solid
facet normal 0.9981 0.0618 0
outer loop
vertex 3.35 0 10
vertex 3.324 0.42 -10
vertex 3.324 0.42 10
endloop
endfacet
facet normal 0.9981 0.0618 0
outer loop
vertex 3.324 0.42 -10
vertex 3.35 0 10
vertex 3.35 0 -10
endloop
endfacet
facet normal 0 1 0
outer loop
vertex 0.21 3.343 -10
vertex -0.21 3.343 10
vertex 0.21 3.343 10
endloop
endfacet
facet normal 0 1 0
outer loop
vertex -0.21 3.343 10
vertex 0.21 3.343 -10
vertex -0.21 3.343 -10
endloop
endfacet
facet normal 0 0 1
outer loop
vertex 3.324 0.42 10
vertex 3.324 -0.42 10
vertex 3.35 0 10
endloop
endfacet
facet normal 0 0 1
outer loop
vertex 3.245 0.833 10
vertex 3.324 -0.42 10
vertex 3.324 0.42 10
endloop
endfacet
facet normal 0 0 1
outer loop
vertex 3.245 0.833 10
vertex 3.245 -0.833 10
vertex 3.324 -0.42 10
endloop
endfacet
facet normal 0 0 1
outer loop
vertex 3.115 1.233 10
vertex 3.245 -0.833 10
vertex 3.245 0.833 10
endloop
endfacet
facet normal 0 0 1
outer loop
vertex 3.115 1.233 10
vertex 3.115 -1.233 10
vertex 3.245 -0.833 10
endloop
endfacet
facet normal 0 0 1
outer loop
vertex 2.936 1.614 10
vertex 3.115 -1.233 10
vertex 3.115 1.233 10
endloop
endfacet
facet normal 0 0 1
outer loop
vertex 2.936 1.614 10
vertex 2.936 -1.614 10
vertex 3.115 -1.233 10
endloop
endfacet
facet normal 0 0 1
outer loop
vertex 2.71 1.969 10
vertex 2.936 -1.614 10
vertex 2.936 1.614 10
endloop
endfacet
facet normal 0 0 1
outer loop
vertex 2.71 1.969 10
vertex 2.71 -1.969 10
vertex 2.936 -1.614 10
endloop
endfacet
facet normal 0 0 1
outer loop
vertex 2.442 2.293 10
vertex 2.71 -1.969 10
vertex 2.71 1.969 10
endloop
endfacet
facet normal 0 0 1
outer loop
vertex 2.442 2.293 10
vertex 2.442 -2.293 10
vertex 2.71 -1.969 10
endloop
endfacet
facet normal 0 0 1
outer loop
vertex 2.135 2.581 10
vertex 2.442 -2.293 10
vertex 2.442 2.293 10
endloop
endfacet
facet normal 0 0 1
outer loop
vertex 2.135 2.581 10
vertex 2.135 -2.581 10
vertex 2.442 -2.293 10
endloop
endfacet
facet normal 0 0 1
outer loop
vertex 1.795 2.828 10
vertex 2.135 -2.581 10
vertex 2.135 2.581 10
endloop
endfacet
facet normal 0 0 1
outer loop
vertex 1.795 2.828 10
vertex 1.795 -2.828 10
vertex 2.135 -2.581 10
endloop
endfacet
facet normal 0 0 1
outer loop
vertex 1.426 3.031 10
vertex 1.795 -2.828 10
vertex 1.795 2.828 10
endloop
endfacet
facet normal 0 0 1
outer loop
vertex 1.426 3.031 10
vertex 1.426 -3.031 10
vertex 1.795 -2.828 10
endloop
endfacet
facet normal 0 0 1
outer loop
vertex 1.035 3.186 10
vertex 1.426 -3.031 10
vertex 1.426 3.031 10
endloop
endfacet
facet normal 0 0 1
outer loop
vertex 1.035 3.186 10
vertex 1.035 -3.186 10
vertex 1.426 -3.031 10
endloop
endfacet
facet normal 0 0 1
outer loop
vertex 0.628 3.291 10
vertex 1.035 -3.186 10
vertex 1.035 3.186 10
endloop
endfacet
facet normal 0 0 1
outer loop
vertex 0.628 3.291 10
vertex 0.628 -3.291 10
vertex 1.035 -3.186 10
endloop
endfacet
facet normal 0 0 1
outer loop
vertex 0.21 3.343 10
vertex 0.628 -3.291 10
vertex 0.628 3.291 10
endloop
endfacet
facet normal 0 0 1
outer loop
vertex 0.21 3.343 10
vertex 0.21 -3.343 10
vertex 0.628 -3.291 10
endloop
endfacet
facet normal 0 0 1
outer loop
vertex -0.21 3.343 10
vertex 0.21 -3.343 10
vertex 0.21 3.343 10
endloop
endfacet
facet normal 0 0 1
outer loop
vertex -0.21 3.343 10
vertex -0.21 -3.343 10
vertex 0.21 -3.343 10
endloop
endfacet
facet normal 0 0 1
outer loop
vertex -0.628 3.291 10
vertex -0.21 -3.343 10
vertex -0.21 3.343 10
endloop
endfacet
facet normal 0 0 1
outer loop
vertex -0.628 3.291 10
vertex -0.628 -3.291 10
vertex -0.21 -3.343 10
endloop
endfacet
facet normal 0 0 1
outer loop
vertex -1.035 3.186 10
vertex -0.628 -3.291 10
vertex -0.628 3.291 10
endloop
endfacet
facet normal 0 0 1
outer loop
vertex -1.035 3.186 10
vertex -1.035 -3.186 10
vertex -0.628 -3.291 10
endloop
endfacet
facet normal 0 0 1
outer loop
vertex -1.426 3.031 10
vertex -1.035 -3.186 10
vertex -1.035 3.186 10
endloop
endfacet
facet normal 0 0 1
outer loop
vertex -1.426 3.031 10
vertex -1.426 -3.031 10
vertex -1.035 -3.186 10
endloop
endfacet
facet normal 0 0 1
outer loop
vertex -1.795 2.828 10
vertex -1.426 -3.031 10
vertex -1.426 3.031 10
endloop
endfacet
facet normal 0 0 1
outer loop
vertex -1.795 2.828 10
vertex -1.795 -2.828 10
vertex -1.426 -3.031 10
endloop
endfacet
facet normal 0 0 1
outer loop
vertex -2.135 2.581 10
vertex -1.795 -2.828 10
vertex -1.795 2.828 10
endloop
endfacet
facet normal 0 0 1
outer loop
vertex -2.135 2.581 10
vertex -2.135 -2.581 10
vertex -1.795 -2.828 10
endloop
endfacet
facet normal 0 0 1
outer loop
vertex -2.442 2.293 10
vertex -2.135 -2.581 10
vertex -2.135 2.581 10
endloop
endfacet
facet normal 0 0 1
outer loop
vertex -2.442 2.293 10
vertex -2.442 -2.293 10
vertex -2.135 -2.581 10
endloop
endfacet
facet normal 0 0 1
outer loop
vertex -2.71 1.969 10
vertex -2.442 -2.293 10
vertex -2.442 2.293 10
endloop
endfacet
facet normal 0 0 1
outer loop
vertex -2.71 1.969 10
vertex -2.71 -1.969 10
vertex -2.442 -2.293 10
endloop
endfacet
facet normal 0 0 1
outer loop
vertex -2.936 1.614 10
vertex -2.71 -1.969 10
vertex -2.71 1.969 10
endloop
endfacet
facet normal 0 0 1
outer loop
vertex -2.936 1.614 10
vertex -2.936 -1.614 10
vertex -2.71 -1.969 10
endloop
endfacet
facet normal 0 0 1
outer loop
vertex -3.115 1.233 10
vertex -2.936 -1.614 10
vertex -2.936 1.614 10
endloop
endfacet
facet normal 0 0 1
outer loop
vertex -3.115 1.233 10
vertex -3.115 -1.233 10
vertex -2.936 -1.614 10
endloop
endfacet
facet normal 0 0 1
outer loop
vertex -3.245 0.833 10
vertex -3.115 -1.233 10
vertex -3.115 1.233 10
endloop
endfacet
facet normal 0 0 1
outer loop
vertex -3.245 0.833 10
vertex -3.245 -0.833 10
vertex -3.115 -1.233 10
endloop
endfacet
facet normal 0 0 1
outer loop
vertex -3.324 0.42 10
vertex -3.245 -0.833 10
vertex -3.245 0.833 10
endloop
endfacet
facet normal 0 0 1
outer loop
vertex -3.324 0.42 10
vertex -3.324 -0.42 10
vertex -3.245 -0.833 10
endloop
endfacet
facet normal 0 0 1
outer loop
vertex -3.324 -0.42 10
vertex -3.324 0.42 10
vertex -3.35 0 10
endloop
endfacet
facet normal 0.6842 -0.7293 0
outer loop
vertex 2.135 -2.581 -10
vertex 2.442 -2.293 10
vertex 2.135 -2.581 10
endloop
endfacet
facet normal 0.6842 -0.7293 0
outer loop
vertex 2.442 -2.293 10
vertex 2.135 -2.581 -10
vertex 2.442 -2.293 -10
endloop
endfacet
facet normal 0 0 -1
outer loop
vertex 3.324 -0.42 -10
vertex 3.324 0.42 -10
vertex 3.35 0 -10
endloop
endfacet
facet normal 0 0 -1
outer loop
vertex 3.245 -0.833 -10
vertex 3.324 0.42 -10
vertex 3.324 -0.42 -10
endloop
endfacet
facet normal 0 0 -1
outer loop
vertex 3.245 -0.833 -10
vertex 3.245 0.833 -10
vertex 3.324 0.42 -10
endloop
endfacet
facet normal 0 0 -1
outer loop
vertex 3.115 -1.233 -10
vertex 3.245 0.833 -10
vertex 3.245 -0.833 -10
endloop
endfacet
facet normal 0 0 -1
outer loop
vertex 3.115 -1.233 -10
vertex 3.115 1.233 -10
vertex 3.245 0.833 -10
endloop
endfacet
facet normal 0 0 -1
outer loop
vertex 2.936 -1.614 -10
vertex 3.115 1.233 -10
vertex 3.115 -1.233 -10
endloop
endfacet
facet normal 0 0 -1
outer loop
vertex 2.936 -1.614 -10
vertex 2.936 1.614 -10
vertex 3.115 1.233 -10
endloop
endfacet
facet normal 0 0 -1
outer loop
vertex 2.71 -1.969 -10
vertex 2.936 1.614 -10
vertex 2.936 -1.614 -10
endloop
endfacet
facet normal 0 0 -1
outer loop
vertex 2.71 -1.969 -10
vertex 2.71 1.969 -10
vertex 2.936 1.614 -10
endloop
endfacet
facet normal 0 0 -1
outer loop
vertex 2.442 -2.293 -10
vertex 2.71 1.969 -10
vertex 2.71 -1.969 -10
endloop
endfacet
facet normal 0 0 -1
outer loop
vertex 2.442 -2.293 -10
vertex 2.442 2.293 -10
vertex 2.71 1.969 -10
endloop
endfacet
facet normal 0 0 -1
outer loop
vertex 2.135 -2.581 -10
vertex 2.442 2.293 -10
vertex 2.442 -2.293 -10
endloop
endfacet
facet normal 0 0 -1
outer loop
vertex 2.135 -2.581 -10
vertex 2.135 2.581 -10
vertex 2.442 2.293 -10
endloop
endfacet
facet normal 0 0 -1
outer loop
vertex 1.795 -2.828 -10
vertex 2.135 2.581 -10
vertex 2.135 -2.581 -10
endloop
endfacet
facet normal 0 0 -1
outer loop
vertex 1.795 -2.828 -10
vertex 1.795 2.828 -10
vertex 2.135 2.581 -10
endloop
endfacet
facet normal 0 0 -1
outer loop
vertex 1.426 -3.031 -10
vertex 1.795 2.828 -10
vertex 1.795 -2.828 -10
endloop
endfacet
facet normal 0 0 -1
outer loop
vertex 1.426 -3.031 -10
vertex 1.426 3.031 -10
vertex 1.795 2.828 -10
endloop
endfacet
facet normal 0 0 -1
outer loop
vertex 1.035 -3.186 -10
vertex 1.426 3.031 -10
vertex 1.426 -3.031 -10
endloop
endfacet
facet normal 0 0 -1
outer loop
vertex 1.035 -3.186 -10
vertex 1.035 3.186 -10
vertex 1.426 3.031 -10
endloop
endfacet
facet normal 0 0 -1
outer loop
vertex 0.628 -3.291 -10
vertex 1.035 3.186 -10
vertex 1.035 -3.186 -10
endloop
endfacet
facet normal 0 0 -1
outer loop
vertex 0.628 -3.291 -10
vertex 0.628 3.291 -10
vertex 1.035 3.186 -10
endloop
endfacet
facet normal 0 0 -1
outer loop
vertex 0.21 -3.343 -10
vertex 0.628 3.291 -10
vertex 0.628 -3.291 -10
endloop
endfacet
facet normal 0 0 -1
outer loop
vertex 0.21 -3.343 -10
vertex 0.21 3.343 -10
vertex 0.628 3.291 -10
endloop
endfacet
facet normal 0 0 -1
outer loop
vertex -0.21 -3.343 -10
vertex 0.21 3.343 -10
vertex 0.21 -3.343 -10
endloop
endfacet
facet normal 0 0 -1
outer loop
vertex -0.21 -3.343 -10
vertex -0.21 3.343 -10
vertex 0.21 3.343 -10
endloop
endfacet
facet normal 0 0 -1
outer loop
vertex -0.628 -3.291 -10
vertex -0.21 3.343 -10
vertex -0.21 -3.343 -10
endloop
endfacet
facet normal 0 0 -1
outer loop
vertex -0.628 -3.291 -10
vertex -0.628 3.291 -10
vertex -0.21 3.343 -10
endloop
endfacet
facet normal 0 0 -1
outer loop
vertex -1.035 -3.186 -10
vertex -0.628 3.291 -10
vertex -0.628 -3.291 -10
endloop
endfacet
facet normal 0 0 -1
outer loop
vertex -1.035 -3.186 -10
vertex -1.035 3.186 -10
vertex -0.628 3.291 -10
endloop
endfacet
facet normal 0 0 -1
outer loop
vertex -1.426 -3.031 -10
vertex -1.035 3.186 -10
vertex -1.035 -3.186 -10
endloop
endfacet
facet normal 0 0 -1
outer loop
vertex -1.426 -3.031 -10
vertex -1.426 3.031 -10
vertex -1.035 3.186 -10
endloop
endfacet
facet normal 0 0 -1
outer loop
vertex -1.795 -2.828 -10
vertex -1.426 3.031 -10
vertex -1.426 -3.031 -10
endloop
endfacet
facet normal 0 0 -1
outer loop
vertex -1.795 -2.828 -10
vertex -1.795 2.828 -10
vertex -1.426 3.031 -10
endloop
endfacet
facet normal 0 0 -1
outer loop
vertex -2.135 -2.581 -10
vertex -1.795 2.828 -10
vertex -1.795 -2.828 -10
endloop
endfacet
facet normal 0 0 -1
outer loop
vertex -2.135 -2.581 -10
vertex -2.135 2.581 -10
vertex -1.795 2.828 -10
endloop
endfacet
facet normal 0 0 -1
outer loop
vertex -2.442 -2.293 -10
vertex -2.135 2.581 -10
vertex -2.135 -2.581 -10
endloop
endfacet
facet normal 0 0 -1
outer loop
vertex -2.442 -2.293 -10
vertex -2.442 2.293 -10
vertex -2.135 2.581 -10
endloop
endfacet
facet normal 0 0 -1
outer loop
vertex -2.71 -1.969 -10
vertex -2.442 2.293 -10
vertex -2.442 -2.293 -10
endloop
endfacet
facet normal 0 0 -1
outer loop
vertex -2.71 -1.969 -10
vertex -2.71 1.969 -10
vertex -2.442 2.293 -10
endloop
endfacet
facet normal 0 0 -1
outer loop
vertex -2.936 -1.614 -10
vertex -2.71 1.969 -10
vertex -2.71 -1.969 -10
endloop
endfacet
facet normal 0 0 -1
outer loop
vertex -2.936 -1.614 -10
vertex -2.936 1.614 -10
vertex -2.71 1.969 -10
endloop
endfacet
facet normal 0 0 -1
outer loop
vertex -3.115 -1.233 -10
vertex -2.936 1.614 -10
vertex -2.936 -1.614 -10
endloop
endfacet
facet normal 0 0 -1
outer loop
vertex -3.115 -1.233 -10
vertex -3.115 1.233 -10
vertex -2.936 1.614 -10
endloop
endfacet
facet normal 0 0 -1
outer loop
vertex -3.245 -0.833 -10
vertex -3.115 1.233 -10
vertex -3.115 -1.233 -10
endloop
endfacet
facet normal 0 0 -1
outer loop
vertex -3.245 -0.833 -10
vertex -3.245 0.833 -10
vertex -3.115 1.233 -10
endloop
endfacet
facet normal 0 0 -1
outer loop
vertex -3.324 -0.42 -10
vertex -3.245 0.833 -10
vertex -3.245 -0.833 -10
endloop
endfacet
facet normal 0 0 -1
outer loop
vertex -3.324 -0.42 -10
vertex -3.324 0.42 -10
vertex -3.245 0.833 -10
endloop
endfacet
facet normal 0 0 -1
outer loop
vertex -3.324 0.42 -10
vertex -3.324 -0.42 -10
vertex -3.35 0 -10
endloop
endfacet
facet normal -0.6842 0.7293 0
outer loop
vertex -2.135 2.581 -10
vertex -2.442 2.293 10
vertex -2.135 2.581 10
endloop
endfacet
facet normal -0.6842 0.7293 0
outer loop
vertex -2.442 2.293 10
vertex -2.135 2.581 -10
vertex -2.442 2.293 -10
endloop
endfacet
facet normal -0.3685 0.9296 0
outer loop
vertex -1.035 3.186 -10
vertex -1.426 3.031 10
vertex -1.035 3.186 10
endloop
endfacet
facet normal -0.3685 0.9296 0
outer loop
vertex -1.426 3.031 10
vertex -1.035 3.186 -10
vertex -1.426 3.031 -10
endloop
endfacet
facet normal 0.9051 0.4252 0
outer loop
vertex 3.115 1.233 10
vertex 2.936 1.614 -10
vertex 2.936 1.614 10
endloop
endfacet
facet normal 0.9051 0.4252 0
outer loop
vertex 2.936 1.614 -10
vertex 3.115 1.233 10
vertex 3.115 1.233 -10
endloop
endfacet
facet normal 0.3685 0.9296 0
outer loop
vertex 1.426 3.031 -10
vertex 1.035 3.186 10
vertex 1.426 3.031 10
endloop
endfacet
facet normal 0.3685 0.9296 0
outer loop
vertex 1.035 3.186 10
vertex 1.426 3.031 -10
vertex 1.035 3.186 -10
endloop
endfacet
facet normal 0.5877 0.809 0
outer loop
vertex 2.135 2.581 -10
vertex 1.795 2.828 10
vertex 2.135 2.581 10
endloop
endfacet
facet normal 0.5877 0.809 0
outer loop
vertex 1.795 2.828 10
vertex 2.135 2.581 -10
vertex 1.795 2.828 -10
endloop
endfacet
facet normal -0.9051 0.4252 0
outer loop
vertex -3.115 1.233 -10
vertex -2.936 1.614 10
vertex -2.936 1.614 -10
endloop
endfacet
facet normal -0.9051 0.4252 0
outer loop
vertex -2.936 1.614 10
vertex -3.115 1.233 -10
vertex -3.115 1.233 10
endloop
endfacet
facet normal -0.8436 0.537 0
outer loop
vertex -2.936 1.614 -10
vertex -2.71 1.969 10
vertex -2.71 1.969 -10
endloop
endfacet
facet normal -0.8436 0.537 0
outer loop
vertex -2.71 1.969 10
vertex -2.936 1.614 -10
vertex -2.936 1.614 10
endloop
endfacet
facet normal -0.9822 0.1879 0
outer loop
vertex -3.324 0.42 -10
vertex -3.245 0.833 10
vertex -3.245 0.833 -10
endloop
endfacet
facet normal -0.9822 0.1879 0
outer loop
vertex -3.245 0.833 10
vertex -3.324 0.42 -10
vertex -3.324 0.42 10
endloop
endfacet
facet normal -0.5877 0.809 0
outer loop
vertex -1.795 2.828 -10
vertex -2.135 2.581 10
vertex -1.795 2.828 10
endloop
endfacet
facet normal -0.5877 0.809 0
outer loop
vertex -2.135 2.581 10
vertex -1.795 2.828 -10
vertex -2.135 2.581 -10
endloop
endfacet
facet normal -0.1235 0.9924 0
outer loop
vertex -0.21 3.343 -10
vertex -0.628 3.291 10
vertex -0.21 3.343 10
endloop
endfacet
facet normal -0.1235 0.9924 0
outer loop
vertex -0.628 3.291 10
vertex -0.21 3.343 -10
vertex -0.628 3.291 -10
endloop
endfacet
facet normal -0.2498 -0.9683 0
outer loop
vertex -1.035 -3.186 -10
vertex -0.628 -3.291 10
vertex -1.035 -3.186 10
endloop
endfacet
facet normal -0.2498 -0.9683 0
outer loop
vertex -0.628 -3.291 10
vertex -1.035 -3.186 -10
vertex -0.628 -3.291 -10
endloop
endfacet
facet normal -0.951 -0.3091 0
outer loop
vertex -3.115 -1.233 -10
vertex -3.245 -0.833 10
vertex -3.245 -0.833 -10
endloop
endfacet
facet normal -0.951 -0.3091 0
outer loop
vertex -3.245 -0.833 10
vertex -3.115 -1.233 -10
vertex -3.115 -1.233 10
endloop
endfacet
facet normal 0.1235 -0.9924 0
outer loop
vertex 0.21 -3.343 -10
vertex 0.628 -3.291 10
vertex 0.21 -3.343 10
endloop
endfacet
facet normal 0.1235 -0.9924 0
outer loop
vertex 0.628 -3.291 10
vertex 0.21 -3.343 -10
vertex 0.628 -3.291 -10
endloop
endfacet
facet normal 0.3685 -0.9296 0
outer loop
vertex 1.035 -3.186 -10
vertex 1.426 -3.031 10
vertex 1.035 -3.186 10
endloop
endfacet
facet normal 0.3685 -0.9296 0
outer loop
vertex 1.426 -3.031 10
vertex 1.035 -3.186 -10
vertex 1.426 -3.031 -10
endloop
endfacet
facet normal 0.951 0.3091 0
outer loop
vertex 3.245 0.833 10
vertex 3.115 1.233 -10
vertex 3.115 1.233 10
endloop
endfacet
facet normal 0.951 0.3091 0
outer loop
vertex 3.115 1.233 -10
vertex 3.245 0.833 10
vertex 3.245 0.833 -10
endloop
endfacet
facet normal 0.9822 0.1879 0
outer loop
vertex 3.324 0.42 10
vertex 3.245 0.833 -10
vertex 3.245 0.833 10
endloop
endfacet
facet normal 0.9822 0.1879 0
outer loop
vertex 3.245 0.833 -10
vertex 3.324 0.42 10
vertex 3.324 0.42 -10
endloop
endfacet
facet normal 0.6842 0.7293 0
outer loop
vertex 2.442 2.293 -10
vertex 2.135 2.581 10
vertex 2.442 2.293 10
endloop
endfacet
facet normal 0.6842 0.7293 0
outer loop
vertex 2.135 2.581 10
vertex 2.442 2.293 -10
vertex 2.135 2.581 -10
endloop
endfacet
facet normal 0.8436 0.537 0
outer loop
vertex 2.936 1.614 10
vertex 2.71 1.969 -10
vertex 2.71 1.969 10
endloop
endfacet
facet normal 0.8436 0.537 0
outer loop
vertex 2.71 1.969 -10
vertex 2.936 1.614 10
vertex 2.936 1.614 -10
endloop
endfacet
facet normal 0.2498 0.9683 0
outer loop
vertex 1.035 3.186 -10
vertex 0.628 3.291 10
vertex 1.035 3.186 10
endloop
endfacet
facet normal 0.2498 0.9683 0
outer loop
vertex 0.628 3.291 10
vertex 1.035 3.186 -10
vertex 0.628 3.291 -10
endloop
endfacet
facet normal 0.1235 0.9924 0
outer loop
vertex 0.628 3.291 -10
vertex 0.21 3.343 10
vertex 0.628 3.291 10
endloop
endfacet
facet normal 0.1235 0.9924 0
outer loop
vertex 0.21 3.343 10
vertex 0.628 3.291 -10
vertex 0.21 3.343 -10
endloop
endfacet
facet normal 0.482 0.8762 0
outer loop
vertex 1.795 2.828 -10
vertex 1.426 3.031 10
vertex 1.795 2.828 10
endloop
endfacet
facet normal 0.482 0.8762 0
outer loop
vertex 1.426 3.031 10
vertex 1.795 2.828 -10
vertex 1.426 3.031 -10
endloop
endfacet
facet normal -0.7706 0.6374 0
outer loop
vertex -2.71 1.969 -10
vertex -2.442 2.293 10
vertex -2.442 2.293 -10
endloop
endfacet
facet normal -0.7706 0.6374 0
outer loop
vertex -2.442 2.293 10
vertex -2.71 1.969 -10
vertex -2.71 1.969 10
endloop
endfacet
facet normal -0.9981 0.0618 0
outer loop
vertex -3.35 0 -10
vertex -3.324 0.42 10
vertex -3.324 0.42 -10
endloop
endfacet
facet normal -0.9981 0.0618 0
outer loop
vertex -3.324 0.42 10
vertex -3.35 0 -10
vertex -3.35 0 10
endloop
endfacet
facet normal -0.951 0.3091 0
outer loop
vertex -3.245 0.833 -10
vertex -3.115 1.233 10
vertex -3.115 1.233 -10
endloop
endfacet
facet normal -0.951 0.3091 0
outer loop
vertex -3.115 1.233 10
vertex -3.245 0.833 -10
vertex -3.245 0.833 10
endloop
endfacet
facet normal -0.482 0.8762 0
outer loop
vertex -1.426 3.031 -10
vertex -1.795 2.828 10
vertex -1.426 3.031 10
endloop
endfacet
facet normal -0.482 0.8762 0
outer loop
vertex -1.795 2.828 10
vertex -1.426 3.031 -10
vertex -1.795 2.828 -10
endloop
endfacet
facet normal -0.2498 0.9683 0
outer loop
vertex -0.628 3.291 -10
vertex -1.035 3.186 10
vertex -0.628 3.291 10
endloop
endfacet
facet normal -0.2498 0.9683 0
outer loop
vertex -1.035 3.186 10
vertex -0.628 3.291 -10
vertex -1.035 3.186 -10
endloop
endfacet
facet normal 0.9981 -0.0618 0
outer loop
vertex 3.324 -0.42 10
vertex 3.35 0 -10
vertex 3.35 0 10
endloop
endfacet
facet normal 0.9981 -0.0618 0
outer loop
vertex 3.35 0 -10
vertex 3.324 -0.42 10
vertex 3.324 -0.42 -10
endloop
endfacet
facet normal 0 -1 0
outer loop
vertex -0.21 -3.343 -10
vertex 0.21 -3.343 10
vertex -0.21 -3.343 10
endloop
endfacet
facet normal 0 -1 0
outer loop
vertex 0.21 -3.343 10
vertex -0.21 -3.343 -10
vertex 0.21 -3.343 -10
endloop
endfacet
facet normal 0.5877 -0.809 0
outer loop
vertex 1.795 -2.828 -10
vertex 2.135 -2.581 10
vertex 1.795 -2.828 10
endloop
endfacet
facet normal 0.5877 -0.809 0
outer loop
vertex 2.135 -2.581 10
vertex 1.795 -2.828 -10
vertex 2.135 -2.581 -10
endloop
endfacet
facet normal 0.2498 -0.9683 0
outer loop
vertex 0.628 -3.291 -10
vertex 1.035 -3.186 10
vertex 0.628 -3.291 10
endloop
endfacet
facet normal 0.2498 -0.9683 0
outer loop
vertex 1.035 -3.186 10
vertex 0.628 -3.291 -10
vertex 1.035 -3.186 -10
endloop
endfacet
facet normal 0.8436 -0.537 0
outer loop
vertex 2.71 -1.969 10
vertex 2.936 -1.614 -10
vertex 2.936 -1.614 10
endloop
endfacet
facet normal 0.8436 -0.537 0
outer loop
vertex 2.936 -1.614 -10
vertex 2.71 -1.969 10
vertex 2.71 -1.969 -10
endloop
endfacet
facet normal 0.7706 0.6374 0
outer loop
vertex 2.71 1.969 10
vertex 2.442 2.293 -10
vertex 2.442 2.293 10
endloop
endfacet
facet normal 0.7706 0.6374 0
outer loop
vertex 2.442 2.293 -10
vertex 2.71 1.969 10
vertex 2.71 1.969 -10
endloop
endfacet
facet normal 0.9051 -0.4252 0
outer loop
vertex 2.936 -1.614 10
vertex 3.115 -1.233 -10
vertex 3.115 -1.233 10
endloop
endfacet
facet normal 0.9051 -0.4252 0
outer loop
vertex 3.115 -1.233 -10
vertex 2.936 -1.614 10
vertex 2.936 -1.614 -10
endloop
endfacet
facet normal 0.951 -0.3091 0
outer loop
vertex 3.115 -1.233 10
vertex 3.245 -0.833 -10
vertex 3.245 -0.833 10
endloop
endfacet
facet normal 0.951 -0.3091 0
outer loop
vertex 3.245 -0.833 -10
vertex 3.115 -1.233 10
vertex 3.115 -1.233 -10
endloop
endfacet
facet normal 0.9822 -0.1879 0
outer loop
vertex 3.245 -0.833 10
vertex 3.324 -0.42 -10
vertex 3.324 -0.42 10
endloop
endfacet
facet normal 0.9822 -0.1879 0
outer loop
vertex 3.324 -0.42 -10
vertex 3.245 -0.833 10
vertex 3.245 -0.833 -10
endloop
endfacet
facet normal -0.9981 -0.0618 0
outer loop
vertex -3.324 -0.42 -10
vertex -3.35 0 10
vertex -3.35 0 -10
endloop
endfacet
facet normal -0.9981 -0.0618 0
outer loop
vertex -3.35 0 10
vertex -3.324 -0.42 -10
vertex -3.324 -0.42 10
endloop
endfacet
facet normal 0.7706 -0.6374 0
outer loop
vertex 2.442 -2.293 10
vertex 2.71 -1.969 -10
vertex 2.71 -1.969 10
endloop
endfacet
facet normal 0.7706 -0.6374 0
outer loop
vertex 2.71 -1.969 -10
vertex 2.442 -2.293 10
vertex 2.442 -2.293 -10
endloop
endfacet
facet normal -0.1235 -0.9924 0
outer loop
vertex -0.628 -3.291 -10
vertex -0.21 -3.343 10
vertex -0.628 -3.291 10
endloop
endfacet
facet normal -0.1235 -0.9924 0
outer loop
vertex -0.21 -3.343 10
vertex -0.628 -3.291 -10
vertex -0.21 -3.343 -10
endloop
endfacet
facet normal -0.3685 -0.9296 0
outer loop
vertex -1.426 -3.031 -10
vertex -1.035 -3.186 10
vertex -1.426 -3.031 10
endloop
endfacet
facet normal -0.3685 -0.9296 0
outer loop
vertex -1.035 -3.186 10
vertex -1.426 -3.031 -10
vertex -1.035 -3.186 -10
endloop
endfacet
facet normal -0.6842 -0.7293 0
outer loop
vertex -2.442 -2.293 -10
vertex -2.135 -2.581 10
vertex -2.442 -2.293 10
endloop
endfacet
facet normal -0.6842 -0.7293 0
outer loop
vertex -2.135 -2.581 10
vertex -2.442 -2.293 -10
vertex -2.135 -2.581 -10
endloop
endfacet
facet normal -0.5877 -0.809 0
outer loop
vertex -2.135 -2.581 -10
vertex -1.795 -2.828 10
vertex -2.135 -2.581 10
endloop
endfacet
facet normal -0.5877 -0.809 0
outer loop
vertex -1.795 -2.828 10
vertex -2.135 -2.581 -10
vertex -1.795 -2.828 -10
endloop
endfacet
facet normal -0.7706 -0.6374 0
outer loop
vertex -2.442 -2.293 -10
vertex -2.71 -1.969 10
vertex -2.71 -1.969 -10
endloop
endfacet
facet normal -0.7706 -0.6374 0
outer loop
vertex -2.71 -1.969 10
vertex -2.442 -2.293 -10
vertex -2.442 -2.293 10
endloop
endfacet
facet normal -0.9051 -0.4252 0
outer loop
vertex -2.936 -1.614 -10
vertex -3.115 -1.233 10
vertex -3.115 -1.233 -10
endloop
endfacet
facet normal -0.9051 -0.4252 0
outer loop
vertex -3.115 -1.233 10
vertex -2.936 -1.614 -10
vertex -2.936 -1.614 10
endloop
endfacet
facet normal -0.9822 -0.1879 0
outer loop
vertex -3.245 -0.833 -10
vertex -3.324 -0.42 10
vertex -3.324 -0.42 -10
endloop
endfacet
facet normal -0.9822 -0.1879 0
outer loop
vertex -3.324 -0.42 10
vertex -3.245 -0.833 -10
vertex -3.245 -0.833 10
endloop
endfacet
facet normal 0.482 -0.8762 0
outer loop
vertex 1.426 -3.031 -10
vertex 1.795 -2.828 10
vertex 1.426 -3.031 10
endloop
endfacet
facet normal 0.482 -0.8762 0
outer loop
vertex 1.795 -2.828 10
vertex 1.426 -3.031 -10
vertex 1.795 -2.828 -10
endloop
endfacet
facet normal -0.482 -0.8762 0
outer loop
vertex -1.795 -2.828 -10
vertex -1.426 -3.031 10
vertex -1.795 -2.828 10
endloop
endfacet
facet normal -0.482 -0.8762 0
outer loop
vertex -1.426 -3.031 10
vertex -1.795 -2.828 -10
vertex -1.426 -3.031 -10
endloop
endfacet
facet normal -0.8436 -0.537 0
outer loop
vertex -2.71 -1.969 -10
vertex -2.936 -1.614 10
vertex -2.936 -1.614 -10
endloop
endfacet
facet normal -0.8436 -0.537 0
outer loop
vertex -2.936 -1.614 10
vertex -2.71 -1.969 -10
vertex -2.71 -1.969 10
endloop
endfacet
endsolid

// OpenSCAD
$fn = 50;


difference() {
	union() {
		translate(v = [0, 0, -10.0000000000]) {
			cylinder(h = 20, r = 3.3500000000);
		}
	}
	union() {
		translate(v = [0, 0, -100.0000000000]) {
			cylinder(h = 200, r = 0);
		}
	}
}
